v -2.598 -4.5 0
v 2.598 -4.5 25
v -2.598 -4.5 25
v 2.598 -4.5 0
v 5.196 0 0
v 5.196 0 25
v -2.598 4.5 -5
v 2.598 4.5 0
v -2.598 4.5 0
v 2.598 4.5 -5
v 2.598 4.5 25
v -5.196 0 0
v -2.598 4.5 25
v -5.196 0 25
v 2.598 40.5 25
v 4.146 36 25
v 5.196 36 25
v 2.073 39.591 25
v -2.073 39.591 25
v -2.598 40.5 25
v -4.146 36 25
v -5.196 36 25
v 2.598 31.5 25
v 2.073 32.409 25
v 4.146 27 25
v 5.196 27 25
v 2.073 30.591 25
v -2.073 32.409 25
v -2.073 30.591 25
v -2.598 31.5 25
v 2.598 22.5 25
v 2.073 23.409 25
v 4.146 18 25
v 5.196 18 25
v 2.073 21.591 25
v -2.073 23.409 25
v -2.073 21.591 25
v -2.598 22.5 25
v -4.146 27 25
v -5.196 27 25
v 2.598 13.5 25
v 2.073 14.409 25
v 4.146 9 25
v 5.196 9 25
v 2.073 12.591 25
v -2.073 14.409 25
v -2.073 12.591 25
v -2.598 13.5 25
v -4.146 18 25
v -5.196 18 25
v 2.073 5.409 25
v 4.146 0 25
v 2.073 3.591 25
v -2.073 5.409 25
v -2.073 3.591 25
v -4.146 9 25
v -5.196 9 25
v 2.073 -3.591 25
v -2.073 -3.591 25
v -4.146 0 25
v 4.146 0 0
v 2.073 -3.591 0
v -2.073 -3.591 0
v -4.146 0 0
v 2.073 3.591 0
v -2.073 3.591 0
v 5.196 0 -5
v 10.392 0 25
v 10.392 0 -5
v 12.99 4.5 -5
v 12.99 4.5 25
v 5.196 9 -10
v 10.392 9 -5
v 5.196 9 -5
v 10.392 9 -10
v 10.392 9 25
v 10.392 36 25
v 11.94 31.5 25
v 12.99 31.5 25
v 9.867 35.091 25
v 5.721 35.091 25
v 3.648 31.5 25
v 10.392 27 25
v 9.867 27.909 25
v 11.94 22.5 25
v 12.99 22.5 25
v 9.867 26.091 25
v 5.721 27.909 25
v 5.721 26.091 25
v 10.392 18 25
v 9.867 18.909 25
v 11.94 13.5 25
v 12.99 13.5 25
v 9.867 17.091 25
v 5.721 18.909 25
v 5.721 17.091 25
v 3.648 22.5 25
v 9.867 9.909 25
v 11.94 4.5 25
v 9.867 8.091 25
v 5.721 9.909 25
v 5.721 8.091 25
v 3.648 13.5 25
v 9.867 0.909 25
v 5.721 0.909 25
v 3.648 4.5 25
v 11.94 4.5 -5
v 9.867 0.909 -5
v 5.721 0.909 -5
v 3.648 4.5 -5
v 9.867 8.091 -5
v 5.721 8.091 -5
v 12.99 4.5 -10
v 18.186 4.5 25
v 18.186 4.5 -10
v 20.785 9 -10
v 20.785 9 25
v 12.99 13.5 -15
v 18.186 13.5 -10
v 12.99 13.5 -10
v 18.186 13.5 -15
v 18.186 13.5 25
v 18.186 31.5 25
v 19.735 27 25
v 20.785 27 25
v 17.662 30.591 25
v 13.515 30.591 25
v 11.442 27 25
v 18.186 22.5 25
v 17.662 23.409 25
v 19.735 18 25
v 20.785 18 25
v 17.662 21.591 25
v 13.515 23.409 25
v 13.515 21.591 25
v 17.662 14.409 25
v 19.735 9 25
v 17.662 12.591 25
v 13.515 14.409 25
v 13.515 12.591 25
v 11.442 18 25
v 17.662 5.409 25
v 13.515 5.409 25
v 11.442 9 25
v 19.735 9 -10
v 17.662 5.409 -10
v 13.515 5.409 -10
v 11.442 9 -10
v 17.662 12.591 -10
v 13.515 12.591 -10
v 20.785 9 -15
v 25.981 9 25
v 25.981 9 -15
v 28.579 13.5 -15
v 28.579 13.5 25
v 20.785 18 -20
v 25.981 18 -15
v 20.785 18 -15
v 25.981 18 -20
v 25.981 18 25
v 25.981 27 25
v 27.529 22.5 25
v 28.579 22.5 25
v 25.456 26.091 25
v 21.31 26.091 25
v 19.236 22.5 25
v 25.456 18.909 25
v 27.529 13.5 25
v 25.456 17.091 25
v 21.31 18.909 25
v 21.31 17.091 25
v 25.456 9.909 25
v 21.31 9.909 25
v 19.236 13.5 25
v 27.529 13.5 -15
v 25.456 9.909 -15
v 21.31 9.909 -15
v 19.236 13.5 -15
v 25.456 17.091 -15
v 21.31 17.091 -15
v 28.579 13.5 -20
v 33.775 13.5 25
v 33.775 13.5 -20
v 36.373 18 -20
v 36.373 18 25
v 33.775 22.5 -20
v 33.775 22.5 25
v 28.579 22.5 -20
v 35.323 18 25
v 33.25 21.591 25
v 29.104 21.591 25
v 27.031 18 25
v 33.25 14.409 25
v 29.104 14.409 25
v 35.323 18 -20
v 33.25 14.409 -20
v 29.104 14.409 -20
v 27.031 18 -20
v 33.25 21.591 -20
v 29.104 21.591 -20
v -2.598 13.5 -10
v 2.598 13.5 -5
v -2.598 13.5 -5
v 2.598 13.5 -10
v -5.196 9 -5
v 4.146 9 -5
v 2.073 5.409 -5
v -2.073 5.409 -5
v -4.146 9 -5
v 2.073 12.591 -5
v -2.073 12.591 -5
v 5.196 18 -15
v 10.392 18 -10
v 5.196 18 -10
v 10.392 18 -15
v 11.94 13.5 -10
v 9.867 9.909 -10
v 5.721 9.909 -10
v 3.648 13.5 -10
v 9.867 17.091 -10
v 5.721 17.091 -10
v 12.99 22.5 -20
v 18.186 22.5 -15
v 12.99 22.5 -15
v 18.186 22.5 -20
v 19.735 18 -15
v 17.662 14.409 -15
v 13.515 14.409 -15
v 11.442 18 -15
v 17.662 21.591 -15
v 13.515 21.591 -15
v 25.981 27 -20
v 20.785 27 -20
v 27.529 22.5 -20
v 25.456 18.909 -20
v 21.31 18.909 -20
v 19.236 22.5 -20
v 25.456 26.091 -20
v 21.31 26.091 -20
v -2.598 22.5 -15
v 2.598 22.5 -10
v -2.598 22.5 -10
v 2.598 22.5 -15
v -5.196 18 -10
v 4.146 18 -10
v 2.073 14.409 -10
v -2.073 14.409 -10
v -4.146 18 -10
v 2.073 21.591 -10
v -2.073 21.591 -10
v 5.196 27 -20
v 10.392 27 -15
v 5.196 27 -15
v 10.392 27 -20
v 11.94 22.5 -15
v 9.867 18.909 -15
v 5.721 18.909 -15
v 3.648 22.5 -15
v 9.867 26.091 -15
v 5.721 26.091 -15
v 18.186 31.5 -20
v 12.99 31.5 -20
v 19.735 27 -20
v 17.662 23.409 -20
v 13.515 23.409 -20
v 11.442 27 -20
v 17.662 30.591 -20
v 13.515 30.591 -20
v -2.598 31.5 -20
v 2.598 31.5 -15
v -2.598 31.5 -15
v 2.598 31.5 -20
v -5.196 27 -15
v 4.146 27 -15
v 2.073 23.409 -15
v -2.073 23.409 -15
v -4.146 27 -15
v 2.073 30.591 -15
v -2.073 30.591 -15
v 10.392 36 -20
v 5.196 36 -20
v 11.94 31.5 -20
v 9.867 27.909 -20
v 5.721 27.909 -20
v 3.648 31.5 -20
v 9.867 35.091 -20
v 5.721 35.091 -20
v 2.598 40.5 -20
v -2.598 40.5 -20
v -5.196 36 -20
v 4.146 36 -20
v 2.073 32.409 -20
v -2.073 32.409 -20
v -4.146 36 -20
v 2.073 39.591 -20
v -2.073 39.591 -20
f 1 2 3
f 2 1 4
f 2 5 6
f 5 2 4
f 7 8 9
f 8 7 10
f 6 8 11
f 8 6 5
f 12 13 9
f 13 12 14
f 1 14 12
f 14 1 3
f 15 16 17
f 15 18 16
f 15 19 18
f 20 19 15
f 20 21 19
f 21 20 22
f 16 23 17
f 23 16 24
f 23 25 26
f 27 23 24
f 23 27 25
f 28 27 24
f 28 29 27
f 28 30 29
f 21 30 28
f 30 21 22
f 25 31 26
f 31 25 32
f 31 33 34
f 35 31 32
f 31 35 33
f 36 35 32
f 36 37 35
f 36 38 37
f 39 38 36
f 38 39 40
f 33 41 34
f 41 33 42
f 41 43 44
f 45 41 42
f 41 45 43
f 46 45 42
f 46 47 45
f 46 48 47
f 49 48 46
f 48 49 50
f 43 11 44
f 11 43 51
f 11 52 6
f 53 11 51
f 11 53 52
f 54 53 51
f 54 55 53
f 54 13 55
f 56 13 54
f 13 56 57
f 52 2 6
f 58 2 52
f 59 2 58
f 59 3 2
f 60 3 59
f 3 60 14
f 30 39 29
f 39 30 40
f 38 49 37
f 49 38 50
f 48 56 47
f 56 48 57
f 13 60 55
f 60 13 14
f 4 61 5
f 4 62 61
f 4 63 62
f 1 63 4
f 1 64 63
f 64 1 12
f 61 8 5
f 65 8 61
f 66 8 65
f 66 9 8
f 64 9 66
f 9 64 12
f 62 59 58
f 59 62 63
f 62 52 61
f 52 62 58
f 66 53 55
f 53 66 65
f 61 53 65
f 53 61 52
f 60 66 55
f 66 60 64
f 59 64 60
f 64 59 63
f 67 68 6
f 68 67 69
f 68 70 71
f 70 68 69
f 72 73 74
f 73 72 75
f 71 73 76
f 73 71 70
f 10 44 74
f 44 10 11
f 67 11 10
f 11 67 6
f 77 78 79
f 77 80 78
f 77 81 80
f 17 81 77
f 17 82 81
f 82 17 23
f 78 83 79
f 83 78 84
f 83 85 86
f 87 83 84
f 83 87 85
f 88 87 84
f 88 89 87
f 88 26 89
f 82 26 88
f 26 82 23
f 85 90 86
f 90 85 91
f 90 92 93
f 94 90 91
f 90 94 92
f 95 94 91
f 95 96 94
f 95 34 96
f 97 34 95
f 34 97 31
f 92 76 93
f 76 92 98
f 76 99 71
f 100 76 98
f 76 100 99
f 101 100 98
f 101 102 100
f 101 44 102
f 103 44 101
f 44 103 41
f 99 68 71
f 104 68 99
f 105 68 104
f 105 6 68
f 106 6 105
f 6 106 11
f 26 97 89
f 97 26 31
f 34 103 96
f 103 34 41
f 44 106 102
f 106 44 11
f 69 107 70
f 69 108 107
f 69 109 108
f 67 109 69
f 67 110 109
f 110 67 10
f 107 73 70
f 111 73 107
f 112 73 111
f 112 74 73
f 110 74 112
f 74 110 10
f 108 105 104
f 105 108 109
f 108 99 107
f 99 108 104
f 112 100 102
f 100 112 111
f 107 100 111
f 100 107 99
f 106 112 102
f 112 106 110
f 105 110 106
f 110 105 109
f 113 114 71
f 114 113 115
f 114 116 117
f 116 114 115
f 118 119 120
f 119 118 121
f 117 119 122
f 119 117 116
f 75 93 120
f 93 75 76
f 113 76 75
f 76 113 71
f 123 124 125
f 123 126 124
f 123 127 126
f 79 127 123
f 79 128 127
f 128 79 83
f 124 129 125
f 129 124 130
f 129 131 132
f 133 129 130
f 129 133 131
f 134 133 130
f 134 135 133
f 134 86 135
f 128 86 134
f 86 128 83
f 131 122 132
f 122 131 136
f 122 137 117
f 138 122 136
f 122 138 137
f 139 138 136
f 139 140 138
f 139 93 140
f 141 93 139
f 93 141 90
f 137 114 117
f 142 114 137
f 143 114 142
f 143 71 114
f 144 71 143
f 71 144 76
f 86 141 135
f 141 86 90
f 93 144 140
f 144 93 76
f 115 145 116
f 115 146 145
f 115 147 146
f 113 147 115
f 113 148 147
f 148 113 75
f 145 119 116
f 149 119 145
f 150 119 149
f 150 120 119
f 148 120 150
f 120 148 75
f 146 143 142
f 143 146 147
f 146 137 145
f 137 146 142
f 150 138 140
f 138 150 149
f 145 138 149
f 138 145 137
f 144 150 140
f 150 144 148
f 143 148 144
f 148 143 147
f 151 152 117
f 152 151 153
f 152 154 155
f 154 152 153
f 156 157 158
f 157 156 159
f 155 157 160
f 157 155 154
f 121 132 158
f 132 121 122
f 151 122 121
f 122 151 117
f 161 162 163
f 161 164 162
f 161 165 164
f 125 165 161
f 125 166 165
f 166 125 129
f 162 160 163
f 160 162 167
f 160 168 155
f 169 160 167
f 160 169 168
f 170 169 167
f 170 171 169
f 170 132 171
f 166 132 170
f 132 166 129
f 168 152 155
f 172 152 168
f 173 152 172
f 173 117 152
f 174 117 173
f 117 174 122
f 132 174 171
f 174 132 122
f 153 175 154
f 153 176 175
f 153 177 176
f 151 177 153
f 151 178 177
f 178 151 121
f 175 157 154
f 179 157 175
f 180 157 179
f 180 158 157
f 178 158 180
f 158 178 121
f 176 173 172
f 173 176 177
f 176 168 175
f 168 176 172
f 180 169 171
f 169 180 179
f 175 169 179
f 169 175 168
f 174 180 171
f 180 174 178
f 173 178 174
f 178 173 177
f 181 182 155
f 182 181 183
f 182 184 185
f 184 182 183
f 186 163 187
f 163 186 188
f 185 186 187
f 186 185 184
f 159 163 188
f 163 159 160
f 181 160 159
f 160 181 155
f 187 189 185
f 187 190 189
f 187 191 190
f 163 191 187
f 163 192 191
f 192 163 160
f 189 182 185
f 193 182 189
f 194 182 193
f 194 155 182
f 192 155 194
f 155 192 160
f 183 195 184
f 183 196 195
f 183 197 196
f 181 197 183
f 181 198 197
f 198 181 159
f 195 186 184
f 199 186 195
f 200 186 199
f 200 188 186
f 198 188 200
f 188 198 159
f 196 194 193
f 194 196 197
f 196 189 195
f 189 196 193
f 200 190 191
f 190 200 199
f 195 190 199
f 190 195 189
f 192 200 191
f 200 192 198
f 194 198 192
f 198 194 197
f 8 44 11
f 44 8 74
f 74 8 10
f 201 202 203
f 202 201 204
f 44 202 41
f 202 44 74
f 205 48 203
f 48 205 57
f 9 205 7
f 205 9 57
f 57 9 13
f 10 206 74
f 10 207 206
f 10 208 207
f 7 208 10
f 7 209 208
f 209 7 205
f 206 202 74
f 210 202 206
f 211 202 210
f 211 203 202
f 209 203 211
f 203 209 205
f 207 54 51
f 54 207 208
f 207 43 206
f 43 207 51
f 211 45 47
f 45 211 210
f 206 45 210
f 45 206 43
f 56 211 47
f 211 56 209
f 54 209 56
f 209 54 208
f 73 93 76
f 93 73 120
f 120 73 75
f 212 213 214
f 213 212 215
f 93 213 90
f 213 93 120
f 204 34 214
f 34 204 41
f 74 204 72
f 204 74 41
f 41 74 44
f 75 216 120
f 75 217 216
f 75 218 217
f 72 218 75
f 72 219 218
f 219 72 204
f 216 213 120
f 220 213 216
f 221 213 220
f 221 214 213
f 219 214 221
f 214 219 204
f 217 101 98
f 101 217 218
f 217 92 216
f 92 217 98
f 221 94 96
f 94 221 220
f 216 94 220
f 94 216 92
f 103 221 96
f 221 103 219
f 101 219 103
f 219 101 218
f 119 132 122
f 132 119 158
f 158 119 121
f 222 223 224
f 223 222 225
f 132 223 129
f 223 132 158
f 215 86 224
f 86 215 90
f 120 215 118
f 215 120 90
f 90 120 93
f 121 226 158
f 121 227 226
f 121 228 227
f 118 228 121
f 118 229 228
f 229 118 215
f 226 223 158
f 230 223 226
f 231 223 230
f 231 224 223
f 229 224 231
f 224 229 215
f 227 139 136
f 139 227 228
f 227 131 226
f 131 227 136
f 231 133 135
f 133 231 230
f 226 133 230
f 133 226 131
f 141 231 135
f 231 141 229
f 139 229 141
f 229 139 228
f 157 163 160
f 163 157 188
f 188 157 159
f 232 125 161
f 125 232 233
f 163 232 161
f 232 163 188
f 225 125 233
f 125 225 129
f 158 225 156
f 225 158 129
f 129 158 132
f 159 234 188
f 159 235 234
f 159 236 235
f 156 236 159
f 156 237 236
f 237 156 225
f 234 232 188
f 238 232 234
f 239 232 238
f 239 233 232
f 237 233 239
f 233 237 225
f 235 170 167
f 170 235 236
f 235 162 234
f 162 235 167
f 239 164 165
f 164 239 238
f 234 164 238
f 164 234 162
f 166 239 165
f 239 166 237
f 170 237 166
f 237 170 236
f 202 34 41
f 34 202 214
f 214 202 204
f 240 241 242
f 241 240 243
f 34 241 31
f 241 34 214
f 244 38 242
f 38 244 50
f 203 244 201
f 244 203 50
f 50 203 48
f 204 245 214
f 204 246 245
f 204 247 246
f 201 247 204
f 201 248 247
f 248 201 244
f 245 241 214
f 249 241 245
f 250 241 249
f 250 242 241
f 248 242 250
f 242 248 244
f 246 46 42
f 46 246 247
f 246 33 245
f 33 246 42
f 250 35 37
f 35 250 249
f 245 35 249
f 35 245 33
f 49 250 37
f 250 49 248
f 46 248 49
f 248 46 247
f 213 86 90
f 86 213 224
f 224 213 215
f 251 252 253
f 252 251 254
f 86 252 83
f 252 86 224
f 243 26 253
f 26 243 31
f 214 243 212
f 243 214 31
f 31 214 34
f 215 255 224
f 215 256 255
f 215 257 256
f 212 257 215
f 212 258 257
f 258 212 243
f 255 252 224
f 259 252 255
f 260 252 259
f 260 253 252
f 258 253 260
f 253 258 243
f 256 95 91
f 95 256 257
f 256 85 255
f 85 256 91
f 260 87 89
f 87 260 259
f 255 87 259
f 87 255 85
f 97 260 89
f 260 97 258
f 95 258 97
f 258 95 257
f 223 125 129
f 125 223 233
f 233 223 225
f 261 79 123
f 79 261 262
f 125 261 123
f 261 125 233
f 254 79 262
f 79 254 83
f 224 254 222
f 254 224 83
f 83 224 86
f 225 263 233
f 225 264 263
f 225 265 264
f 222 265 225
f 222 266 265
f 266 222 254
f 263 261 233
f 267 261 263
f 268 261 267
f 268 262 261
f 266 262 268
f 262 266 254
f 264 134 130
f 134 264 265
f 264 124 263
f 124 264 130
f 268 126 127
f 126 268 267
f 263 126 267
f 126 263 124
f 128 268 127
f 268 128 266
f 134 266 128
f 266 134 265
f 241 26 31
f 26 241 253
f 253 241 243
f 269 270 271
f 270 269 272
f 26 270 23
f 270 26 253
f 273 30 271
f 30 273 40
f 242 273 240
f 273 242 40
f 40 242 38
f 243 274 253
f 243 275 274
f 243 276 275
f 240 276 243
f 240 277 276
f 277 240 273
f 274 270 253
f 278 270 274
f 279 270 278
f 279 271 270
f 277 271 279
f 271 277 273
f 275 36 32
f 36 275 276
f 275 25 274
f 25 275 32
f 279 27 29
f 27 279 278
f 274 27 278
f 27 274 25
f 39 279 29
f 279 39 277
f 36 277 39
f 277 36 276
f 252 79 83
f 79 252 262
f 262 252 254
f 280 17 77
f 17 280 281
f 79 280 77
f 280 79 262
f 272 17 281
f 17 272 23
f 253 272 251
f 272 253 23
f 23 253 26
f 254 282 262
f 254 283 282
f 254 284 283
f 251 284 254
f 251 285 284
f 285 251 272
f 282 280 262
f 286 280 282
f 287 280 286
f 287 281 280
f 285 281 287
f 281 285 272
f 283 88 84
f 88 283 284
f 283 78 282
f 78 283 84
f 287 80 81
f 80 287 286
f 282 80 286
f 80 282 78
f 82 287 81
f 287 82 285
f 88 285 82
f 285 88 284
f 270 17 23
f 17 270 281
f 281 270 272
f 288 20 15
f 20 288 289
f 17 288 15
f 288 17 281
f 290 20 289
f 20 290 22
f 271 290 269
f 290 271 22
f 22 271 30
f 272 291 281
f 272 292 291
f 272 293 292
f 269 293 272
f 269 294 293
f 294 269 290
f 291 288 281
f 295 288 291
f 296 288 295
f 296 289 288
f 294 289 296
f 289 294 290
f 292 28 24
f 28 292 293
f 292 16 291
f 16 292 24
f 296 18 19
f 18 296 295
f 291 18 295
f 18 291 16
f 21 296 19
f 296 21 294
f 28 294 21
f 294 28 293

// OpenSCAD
// Ein Zuhause fuer Garnelen
$fn=6;
dia=9;//durchmesser der Rohren
leng=25;//laenge
n=4;//n+1 = Anzal der Roehren in eine Richtung


module pipe(length,diameter,wall){
    fudge = 1/cos(180/$fn);
difference(){
    cylinder(d=diameter*fudge,h=length);
    translate([0,0,-1])cylinder(d=diameter*fudge-wall,h=length+2);
    }
}

union(){
    for(j=[0:n]){
    for(i=[0:(n-j)]){
        translate([sqrt(0.75)*dia*i,j*dia+i*dia*.5,-(i+j)*5])pipe(leng+(j+i)*5,dia,6*0.35);
    
        }
    }
}
